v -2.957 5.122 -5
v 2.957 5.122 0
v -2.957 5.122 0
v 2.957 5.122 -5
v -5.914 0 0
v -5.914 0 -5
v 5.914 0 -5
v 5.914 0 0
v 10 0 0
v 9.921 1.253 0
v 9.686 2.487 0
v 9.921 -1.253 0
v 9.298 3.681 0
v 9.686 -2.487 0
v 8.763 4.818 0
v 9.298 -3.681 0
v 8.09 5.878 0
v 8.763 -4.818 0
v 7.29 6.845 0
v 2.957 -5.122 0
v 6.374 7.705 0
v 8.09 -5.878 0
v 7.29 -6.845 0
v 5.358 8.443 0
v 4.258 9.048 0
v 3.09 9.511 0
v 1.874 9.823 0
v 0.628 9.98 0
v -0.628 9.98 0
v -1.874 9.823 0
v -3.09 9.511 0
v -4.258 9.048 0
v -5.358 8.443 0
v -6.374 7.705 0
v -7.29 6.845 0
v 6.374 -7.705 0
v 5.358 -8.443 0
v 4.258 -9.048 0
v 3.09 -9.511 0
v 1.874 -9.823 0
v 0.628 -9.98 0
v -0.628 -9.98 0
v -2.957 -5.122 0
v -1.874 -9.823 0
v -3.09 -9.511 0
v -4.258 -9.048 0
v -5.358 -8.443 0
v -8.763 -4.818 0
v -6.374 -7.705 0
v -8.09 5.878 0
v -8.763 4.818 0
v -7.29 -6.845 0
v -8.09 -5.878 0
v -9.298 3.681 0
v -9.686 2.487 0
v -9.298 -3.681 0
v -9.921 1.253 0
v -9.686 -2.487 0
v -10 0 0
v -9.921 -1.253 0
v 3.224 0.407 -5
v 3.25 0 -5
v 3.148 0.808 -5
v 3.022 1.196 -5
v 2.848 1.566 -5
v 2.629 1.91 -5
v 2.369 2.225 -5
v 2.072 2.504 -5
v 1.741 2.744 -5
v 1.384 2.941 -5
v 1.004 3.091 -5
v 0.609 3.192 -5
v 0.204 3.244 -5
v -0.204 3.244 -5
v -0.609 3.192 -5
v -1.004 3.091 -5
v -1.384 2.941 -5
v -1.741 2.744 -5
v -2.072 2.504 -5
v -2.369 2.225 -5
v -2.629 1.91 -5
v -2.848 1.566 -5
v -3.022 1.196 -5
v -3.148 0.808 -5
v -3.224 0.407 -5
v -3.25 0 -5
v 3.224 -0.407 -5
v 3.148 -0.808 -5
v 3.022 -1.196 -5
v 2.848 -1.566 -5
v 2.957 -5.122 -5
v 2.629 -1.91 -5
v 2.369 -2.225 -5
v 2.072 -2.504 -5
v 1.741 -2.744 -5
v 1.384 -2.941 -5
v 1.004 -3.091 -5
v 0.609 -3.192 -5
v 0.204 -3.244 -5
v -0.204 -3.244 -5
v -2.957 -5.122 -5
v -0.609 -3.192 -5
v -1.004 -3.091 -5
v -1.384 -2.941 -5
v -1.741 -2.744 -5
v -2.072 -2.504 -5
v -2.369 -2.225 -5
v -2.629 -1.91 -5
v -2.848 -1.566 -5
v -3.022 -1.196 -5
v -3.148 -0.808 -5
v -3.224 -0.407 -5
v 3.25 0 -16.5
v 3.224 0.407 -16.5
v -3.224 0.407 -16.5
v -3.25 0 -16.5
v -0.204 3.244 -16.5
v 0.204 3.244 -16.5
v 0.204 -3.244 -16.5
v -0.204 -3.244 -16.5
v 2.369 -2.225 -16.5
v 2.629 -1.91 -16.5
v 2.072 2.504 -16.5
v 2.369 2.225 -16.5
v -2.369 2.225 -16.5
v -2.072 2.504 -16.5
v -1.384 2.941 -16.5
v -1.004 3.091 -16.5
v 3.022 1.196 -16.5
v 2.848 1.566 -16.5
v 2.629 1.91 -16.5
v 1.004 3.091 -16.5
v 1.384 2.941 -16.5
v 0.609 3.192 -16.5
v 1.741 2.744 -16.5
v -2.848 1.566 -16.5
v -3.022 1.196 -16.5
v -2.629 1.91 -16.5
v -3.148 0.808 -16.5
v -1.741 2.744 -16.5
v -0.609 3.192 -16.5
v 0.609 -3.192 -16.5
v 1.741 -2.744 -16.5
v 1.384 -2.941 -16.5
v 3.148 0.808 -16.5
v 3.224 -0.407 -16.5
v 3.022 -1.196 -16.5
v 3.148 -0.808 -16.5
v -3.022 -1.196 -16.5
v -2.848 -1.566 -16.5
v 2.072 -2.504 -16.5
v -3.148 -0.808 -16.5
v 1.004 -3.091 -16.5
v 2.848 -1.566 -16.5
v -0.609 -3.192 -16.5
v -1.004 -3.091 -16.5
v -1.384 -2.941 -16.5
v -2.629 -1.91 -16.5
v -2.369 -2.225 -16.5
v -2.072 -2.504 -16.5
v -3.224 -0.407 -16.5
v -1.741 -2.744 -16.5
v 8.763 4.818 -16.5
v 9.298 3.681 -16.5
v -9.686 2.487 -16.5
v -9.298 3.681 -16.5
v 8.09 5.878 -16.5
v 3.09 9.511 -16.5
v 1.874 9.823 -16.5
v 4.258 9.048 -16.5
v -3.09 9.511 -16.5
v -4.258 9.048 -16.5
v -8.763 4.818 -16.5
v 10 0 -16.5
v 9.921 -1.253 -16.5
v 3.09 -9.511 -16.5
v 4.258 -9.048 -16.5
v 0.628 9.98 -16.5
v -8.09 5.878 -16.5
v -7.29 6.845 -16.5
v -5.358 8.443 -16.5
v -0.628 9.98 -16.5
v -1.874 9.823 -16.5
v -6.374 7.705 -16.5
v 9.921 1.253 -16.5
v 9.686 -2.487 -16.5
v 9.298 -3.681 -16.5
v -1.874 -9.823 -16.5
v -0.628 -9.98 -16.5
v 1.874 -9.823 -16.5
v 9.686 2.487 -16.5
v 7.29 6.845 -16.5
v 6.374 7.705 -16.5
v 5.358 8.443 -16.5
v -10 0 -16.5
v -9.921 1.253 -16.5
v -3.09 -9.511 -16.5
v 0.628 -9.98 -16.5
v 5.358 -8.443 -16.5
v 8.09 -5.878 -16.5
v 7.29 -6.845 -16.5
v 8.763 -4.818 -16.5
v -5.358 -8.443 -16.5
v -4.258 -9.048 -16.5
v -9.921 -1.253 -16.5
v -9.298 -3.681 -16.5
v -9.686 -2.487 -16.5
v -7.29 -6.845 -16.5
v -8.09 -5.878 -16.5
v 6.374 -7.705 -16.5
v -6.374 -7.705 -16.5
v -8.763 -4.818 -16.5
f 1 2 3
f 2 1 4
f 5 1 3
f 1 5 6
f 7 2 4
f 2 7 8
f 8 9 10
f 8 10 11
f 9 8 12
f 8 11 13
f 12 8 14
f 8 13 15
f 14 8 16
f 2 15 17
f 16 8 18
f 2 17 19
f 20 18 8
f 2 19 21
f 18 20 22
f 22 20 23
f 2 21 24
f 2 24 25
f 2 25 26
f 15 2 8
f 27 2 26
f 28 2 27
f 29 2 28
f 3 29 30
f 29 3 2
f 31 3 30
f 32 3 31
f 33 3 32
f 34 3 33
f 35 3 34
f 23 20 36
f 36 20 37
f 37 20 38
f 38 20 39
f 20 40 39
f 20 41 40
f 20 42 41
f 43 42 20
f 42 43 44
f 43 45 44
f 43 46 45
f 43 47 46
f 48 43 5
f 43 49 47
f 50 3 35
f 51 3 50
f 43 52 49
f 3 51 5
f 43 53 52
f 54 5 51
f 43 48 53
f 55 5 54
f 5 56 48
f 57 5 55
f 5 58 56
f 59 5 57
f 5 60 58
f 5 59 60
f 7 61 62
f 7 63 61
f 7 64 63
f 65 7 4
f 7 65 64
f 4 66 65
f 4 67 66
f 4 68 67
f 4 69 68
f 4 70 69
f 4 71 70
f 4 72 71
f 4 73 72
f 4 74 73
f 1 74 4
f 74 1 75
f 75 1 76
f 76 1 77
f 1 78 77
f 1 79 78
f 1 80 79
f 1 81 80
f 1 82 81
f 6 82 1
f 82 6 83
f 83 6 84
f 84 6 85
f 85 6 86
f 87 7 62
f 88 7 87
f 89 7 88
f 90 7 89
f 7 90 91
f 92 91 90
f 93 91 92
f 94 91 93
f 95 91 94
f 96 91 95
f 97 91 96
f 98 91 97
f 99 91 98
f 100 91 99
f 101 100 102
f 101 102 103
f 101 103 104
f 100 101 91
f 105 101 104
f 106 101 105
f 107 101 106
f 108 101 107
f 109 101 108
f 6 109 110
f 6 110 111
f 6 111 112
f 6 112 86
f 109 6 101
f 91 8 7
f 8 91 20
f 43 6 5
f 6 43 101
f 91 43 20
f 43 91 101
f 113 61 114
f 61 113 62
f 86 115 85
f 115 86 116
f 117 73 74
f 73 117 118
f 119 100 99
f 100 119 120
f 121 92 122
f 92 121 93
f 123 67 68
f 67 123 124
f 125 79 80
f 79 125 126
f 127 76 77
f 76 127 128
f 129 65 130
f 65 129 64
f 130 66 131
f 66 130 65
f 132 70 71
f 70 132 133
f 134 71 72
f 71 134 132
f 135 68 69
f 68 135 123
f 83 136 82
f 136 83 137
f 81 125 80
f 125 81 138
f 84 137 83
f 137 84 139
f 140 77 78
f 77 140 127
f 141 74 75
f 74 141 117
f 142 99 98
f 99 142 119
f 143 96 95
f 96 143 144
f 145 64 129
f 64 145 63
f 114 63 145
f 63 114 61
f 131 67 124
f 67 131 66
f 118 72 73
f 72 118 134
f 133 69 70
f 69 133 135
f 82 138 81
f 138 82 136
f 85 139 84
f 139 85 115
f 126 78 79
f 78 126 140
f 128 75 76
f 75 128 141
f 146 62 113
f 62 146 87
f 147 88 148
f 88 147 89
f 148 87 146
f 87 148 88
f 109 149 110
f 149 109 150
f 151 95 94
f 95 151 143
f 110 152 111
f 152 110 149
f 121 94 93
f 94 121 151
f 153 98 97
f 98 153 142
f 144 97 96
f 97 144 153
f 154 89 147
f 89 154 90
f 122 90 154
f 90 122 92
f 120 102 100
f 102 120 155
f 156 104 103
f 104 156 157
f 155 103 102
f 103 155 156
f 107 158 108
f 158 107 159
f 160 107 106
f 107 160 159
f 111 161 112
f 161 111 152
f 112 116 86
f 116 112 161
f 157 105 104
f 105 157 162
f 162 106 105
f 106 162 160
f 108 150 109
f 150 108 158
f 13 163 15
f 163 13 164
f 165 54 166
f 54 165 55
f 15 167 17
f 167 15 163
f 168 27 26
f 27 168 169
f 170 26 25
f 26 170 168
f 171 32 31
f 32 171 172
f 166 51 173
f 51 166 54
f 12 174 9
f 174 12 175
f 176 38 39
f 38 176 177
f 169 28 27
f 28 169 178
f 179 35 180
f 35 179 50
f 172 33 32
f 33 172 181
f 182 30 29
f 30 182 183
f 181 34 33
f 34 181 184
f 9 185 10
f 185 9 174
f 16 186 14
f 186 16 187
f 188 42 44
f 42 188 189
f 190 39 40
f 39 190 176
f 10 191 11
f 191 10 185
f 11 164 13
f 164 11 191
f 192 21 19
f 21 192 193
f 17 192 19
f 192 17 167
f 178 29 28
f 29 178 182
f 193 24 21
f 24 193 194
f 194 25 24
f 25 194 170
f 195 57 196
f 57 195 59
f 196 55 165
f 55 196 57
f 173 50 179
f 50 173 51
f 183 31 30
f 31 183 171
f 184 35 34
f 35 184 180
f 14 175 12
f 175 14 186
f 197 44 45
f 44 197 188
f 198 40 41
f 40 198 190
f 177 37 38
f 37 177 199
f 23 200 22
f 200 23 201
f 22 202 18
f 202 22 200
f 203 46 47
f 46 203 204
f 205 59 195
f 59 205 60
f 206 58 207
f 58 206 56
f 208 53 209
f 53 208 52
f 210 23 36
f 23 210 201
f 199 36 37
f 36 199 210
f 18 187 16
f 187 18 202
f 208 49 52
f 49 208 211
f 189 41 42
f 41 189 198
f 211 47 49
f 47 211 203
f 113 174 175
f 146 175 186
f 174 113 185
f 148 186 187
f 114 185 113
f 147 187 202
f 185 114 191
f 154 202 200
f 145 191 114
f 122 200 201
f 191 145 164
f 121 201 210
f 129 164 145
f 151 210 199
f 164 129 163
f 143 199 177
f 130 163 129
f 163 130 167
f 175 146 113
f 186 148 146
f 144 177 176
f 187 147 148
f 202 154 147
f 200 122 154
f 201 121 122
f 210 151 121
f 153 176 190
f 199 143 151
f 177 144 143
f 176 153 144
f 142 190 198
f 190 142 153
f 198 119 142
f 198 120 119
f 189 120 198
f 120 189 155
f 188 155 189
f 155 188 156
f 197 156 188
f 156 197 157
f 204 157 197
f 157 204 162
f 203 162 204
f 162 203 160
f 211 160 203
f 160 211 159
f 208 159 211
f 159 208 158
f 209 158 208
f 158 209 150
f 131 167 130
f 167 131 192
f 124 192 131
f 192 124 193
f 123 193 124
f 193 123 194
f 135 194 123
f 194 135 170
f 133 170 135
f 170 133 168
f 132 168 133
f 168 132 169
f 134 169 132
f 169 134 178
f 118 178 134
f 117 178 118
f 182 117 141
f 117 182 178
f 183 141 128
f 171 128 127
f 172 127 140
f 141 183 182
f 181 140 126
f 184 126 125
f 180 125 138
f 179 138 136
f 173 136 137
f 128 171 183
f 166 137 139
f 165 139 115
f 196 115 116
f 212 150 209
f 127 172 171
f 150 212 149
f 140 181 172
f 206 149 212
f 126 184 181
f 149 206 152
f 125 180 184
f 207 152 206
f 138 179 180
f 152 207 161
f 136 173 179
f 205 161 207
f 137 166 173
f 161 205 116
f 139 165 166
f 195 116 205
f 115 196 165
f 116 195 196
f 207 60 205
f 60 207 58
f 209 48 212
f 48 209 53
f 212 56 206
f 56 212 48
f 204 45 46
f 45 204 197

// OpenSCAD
$fn = 50;

difference() {
	union() {
		translate(v = [0, 0, -16.5]) {
			cylinder(h = 16.5, r = 10.0);
		}
	}
	union() {
		translate(v = [0, 0, 0]) {
			rotate(a = [0, 0, 0]) {
				difference() {
					union() {
						translate(v = [0, 0, -5]) {
							linear_extrude(height = 5) {
								polygon(points = [[5.914249999999999, 0.0], [2.957125, 5.1218907443321156], [-2.9571249999999982, 5.1218907443321156], [-5.914249999999999, 7.242867331857232e-16], [-2.9571250000000022, -5.121890744332115], [2.9571249999999956, -5.121890744332118]]);
							}
						}
					}
					union();
				}
			}
		}
		#translate(v = [0, 0, -100.0]) {
			cylinder(h = 200, r = 3.25);
		}
	}
}
